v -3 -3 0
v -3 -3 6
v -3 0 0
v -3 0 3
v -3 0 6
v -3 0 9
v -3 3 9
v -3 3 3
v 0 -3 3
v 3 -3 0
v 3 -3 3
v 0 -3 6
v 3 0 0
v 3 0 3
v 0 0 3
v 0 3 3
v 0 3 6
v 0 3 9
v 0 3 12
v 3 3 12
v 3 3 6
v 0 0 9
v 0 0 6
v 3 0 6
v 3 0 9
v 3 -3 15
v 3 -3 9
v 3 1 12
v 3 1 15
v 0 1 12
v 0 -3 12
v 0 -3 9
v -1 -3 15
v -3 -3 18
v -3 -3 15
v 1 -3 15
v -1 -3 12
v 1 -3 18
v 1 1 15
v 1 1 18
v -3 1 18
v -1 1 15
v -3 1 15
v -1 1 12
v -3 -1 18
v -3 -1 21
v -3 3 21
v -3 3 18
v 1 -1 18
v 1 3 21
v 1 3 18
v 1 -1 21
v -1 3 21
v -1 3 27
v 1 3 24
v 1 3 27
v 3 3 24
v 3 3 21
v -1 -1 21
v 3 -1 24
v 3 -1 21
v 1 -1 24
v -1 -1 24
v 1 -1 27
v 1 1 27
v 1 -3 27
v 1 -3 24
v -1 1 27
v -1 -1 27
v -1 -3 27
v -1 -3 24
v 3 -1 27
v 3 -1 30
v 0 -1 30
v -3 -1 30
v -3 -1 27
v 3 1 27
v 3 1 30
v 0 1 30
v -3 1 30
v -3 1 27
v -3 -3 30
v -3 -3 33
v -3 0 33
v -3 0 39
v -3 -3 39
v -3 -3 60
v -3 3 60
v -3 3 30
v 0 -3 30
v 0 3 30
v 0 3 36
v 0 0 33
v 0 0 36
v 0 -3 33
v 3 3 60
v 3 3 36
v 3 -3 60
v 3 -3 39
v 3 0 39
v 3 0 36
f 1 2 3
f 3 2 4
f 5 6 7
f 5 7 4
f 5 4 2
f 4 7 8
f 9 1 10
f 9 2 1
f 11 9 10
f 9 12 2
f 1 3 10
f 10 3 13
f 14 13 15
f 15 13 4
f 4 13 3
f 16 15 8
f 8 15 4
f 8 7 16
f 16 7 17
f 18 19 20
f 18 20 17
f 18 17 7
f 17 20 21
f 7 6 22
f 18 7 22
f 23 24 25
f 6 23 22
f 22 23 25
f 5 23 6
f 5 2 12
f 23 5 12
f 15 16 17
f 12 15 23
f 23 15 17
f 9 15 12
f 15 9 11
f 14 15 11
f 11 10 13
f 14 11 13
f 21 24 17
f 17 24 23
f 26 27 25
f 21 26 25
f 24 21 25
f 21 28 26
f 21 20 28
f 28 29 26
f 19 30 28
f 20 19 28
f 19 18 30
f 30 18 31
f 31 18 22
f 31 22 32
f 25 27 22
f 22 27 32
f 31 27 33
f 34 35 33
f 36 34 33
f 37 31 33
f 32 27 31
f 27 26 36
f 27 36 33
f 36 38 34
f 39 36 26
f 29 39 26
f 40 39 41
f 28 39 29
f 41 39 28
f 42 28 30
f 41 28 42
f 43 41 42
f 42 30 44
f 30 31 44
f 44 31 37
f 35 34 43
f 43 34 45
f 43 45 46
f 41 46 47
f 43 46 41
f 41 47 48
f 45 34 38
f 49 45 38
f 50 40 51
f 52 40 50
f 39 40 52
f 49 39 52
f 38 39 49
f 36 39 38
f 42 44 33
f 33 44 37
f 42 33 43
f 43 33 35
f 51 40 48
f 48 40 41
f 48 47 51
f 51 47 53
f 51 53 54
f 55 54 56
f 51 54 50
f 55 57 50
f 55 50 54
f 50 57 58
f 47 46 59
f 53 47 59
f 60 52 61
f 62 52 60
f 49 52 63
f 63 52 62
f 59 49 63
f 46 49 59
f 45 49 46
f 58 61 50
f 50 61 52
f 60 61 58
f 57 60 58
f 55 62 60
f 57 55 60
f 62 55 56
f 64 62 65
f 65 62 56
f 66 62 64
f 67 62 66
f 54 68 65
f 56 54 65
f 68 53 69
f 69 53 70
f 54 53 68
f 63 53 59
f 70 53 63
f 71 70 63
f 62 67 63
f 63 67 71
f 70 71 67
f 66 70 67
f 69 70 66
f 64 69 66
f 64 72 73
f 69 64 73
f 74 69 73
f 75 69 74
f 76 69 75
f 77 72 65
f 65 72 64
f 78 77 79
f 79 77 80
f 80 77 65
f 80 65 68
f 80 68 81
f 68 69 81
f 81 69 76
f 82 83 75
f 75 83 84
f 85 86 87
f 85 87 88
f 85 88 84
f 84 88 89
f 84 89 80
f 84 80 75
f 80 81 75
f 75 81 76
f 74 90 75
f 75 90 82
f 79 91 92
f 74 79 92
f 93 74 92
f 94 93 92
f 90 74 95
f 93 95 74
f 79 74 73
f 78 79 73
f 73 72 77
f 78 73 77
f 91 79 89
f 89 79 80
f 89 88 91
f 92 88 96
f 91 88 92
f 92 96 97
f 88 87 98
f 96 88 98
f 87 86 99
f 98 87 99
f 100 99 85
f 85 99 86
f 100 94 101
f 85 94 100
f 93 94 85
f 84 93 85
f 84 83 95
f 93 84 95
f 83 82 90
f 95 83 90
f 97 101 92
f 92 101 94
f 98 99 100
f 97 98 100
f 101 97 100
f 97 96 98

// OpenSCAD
module pattern_cut(m, pattern) {
  // We want to cut the mth module out..
  n = pattern[0];
  e = pattern[1];
  s = pattern[2];
  w = pattern[3];

  sh = 3; // Slice height
  so = m * sh; // Slice offset

  if (n=="H") { translate([-5,0,so]) cube([10, 4, sh]); }
  else if (n=="T") { translate([-5,1,so]) cube([10, 3, sh]); }

  if (e=="H") { translate([0,-5,so]) cube([4, 10, sh]); }
  else if (e=="T") { translate([1,-5,so]) cube([3, 10, sh]); }

  if (s=="H") { translate([-5,-4,so]) cube([10, 4, sh]); }
  else if (s=="T") { translate([-5,-4,so]) cube([10, 3, sh]); }

  if (w=="H") { translate([-4,-5,so]) cube([4, 10, sh]); }
  else if (w=="T") { translate([-4,-5,so]) cube([3, 10, sh]); }
}

elems = [
"H---",
"-H--",
"--H-",
"---H",
"T--T",
"TT--",
"-TT-",
"--TT",
"-T-T",
"T-T-",
"-H--",
"-HH-",
"--H-",
];


difference() {
  translate([0, 0, 30]) cube([6, 6, 60], center=true);

  for (i = [0:len(elems)]) {
    pattern_cut(i, elems[i]);
  }
}
